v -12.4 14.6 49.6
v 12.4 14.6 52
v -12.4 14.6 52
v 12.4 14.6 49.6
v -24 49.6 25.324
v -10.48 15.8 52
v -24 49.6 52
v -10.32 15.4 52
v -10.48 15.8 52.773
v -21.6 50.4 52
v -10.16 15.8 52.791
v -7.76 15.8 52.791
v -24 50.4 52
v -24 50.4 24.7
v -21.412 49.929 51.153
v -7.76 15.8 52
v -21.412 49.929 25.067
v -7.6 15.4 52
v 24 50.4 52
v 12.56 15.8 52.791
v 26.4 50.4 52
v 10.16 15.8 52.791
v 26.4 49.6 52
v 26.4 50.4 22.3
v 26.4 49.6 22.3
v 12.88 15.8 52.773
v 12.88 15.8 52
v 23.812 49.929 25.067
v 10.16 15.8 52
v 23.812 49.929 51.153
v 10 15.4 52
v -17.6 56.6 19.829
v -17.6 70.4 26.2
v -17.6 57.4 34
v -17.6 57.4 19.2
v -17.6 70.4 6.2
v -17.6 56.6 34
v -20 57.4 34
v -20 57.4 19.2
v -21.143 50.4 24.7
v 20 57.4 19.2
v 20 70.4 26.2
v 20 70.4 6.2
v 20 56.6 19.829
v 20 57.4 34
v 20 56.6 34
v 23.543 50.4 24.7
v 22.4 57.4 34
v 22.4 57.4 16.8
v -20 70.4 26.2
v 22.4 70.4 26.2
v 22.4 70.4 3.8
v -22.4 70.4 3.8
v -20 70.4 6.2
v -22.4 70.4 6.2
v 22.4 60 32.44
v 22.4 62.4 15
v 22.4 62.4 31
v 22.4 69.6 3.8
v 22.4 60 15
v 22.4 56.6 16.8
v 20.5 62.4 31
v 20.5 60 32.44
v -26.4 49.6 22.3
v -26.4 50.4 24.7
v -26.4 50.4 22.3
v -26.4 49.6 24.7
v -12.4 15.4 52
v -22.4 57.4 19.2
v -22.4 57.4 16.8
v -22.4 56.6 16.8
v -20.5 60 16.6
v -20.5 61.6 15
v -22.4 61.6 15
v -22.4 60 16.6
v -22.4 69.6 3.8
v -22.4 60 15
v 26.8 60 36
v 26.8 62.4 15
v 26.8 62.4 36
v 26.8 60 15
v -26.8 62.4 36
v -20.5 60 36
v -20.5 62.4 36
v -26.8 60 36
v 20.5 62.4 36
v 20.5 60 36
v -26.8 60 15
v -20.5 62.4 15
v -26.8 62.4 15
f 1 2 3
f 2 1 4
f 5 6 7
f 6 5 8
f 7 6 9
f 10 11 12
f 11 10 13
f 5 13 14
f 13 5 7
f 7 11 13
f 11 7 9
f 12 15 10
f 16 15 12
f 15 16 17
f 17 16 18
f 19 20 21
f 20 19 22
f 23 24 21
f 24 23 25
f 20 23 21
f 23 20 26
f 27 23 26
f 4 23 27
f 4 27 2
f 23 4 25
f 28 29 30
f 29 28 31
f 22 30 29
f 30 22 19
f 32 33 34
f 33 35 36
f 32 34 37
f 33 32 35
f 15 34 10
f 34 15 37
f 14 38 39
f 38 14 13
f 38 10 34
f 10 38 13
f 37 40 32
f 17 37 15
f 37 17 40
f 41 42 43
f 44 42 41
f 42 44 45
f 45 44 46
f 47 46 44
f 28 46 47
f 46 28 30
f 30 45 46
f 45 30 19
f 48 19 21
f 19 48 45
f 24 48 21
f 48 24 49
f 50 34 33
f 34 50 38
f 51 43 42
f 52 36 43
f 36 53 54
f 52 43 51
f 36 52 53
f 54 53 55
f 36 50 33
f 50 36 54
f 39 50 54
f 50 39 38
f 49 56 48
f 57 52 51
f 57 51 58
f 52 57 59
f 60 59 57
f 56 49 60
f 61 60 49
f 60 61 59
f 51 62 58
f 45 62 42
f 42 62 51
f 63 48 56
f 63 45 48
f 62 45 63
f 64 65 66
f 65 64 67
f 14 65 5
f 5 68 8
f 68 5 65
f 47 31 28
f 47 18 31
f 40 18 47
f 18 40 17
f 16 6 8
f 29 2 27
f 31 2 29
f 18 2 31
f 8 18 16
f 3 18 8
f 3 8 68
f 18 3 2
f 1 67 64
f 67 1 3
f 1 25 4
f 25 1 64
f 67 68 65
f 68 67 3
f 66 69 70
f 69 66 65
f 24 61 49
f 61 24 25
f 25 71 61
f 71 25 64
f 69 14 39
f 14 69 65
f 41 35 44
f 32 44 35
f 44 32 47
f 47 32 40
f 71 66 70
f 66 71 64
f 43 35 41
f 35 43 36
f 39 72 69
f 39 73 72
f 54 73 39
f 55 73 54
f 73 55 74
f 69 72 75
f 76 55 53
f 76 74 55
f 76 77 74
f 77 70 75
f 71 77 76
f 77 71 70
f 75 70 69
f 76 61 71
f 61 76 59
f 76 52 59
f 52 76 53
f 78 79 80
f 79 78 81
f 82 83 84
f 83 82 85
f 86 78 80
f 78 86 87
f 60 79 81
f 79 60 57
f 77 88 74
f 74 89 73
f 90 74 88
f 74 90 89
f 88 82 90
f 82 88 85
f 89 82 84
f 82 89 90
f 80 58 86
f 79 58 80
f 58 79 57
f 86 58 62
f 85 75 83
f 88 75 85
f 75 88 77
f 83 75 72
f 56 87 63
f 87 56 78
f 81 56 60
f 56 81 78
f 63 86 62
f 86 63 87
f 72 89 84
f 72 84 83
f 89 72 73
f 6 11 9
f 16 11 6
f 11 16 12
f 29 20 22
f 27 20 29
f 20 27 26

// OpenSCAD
// file: lib_v2.scad
// ============================================================================
// Shared geometry helpers for the v2 print set.   include <lib_v2.scad>;
// ============================================================================

// Wedge prism, centred on +X, spanning +/- ang/2, rising from z = 0.
module sector_prism(r, ang, h, seg = 64) {
    steps = max(4, ceil(ang / 2.5));   // ~2.5 deg chords, independent of ang
    linear_extrude(height = h)
        polygon(concat(
            [[0, 0]],
            [for (i = [0 : steps])
                let (a = -ang / 2 + ang * i / steps) [r * cos(a), r * sin(a)]]
        ));
}

// Annular sector prism, centred on +X, rising from z = 0.
module ring_sector(r_in, r_out, ang, h, seg = 64) {
    difference() {
        sector_prism(r_out, ang, h, seg);
        translate([0, 0, -0.05]) cylinder(h = h + 0.1, r = r_in, $fn = seg);
    }
}

module tube(od, id, h) {
    difference() {
        cylinder(h = h, d = od);
        translate([0, 0, -0.05]) cylinder(h = h + 0.1, d = id);
    }
}

// Inward ledge with a 45 deg self-supporting underside. Top face at z_top.
module chamfered_ledge(r_wall, w, z_top) {
    rotate_extrude(convexity = 4)
        polygon([[r_wall - w, z_top],
                 [r_wall,     z_top],
                 [r_wall,     z_top - w]]);
}

// Thin slab used as a hull station for the chute trough.
module station_slab(y, z, w, t = 0.6) {
    translate([-w / 2, y - t / 2, z]) cube([w, t, 0.6]);
}
// file: parameters_v2.scad
// ============================================================================
// Automated Pill Dispenser — v2 "carousel-only rotation" architecture
// Shared parametric dimensions.   include <parameters_v2.scad>;
//
// Coordinate convention: z = 0 is the table / underside of the drum.
// +Y is the FRONT of the unit (chute, catch tray, camera side).
// Every part module is authored in ASSEMBLY coordinates; each part file
// applies its own print-orientation transform for STL export.
// ============================================================================

// ---------------------------------------------------------------- print / fit
layer_h        = 0.2;
nozzle_d       = 0.4;
wall           = 3.0;   // drum wall thickness
fit_slip       = 0.35;  // sliding fit (rotating / removable parts)
fit_press      = 0.10;  // press fit
m3_pilot_d     = 2.55;  // self-tapping M3 into PLA
m3_free_d      = 3.35;
m2_pilot_d     = 1.65;  // servo tab screws
m2_free_d      = 2.30;

// ---------------------------------------------------------------- drum (A)
h_od           = 120.0;
h_id           = h_od - 2 * wall;          // 114.0
h_ri           = h_id / 2;                 // 57.0
h_top_z        = 86.0;                     // top rim height

// ---------------------------------------------------------------- fixed plate (B)
plate_t        = 4.0;
plate_z        = 52.0;                     // plate UNDERSIDE
plate_top      = plate_z + plate_t;        // 56.0
plate_dia      = h_id - 0.6;               // 113.4  (0.3 gap per side)
plate_r        = plate_dia / 2;

ledge_w        = 3.0;                      // inward width of the support ledge
key_n          = 3;                        // anti-rotation keys
key_arc_w      = 10.0;                     // key width (chord, mm)
key_h          = 3.0;                      // key depth below the plate
key_angles     = [30, 150, 270];

// The one and only opening in the fixed plate. Opens right out to the rim so
// no pill can ever ride around on a closed outer ledge.
// Width is set by the leak rule below, not by taste.
open_deg       = 18.0;
open_r_in      = 15.0;
open_deg_ctr   = 90.0;                     // centred on +Y (front)

// Centre pilot: a post stands up from the plate and the carousel hub drops
// onto it. The post carries the carousel's weight, so the servo shaft only
// ever sees torque, and both halves print with no overhangs.
pilot_d        = 10.0;
pilot_engage   = 2.4;

// ---------------------------------------------------------------- carousel (C)
car_n          = 6;                        // compartments
car_od         = h_id - 1.4;               // 112.6 -> 0.7 mm pill-proof wall gap
car_r          = car_od / 2;
car_floor_t    = 2.4;
car_div_t      = 2.4;
car_div_h      = 24.0;                     // divider height ABOVE the floor
car_hub_od     = 28.0;
car_gap        = 0.6;                      // running gap, carousel floor -> plate
car_z          = plate_top + car_gap;      // 56.6 floor underside
car_top        = car_z + car_floor_t + car_div_h;

// One drop hole per compartment. THE LEAK RULE: the solid floor band between
// two holes (pitch - car_hole_deg) must be WIDER than the plate opening, or the
// parked carousel leaves part of the opening uncovered and its neighbours
// dribble pills into the chute. 60 - 30 = 30 deg of band over an 18 deg
// opening leaves +/- 6 deg of servo parking error before anything leaks.
car_hole_deg   = 30.0;
car_hole_r_in  = 15.5;
car_hole_r_out = car_r + 1.0;              // breaches the rim: nothing rides past

// Because the hole is narrower than the compartment, each floor flange is
// ramped so tablets roll into the hole instead of parking on a flat ledge.
ramp_phi       = 22.0;
ramp_max_h     = 6.0;

pilot_post_h   = car_gap + pilot_engage;   // 3.0, stands on the plate
pilot_bore_d   = pilot_d + fit_slip;       // 10.35 journal in the hub underside

// Round MG90S horn, screwed splines-up into the hub top. The servo shaft just
// plugs down into it, so the carousel still lifts straight out for refilling.
horn_disc_d    = 20.4;
horn_disc_h    = 4.2;
horn_hole_r    = 7.5;
horn_screw_n   = 4;
horn_boss_d    = 8.5;                      // spline boss / screw-head relief
horn_boss_depth= 8.0;

// ---------------------------------------------------------------- servo (MG90S)
servo_l        = 22.8;
servo_w        = 12.2;
servo_case_h   = 22.5;
servo_tab_span = 32.2;
servo_tab_t    = 2.5;
servo_shaft_in = 5.9;   // shaft axis, measured in from the flange-side case end
servo_nose_h   = 6.0;   // flange plane -> top of case
servo_shaft_h  = 4.7;   // shaft protrusion above the case

// ---------------------------------------------------------------- servo bridge (E)
bridge_t       = 4.0;
bridge_z       = h_top_z;                  // sits on the rim
bridge_ear_n   = 4;
bridge_ear_w   = 16.0;
boss_out       = 5.0;                      // external screw boss, radial depth
boss_h         = 14.0;                     // boss height below the rim
boss_angles    = [45, 135, 225, 315];

// ---------------------------------------------------------------- drop chute (D)
chute_wall     = 2.4;
chute_win_w    = 40.0 + 2 * chute_wall + 0.8;   // 45.6 wall window width
chute_win_z0   = 16.0;                          // window bottom
chute_win_z1   = 38.0;                          // window top (45 deg gable above)

// Trough stations: [ y, floor z, inside width, side-wall top z ].
// Inside the drum the side walls run right up to the plate underside so a
// tablet cannot bounce sideways into the electronics bay. The internal floor
// falls at 38 deg; the external run is the 45 deg section from the sketch.
chute_stations = [
    [15.0, 52.0, 20.0, 52.2],
    [50.0, 24.7, 48.0, 52.0],
    [57.0, 19.2, 40.0, 34.0],
    [70.0,  6.2, 40.0, 26.2],
];

// ---------------------------------------------------------------- catch tray (F)
tray_y0        = 68.0;                     // rear wall, just under the chute lip
tray_l         = 60.0;                     // outward (Y) length
tray_w         = 74.0;
tray_floor     = 2.0;
tray_h         = 14.0;
tray_rear_h    = 8.0;                      // low rear wall, clears the chute lip

// ---------------------------------------------------------------- base cover (G)
base_t         = 3.0;
base_z         = -base_t;                  // cover bottom = the table plane
post_d         = 9.0;
post_h         = 16.0;
post_r         = h_ri - post_d / 2 + 0.8;  // overlaps the wall so it fuses
post_angles    = [70, 190, 310];
cable_w        = 12.0;
cable_h        = 6.0;
// main file
// ============================================================================
// v2 PART D — drop chute (internal hopper + through-wall spout + 45 deg run)
//
// One piece: the sloped floor under the plate opening, the side walls that seal
// up to the plate underside, the spout that keys into the drum window, and the
// external 45 deg run that lands pills in the catch tray.
//
// This is the fix for the v1 "slit" — the exit is a 40 mm wide open trough,
// not a slot, so nothing can jam in it.
// ============================================================================

include <parameters_v2.scad>;
include <lib_v2.scad>;

$fn = 64;

n_st = len(chute_stations);

// Floor slab station: a thin cross-section hulled to its neighbour.
module d2_floor_station(st) {
    w = st[2] + 2 * chute_wall;
    translate([-w / 2, st[0] - 0.4, st[1] - chute_wall])
        cube([w, 0.8, chute_wall]);
}

module d2_wall_station(st, side) {
    h = max(0.8, st[3] - st[1]);
    translate([side * (st[2] / 2), st[0] - 0.4, st[1]])
        cube([chute_wall, 0.8, h]);
}

// Frame collar on the outside of the drum: laps the window edges so the chute
// cannot slide in or out, without ever narrowing the pill path.
module d2_collar() {
    y  = h_od / 2;
    z0 = chute_win_z0 - 1.0;
    z1 = chute_win_z1 - 2.0;
    difference() {
        translate([-(chute_win_w / 2 + 4), y, z0])
            cube([chute_win_w + 8, 2.4, z1 - z0]);
        translate([-20.5, y - 1, 14.5])
            cube([41, 4.4, 22]);
    }
}

module drop_chute_v2() {
    difference() {
        union() {
            for (i = [0 : n_st - 2]) {
                hull() {
                    d2_floor_station(chute_stations[i]);
                    d2_floor_station(chute_stations[i + 1]);
                }
                for (s = [-1, 1]) hull() {
                    d2_wall_station(chute_stations[i], s);
                    d2_wall_station(chute_stations[i + 1], s);
                }
            }
            d2_collar();
        }
        // Trim the inner end square to the plate underside.
        translate([-60, chute_stations[0][0] - 30, plate_z])
            cube([120, 30.8, 40]);
    }
}

// Print orientation: as modelled. The floor underside is a 38-45 deg overhang,
// which FDM handles unsupported; add light supports under the external run if
// your first attempt droops.
drop_chute_v2();

echo(str("D2 chute: exit trough ", chute_stations[n_st - 1][2],
         " mm wide at z ", chute_stations[n_st - 1][1]));
